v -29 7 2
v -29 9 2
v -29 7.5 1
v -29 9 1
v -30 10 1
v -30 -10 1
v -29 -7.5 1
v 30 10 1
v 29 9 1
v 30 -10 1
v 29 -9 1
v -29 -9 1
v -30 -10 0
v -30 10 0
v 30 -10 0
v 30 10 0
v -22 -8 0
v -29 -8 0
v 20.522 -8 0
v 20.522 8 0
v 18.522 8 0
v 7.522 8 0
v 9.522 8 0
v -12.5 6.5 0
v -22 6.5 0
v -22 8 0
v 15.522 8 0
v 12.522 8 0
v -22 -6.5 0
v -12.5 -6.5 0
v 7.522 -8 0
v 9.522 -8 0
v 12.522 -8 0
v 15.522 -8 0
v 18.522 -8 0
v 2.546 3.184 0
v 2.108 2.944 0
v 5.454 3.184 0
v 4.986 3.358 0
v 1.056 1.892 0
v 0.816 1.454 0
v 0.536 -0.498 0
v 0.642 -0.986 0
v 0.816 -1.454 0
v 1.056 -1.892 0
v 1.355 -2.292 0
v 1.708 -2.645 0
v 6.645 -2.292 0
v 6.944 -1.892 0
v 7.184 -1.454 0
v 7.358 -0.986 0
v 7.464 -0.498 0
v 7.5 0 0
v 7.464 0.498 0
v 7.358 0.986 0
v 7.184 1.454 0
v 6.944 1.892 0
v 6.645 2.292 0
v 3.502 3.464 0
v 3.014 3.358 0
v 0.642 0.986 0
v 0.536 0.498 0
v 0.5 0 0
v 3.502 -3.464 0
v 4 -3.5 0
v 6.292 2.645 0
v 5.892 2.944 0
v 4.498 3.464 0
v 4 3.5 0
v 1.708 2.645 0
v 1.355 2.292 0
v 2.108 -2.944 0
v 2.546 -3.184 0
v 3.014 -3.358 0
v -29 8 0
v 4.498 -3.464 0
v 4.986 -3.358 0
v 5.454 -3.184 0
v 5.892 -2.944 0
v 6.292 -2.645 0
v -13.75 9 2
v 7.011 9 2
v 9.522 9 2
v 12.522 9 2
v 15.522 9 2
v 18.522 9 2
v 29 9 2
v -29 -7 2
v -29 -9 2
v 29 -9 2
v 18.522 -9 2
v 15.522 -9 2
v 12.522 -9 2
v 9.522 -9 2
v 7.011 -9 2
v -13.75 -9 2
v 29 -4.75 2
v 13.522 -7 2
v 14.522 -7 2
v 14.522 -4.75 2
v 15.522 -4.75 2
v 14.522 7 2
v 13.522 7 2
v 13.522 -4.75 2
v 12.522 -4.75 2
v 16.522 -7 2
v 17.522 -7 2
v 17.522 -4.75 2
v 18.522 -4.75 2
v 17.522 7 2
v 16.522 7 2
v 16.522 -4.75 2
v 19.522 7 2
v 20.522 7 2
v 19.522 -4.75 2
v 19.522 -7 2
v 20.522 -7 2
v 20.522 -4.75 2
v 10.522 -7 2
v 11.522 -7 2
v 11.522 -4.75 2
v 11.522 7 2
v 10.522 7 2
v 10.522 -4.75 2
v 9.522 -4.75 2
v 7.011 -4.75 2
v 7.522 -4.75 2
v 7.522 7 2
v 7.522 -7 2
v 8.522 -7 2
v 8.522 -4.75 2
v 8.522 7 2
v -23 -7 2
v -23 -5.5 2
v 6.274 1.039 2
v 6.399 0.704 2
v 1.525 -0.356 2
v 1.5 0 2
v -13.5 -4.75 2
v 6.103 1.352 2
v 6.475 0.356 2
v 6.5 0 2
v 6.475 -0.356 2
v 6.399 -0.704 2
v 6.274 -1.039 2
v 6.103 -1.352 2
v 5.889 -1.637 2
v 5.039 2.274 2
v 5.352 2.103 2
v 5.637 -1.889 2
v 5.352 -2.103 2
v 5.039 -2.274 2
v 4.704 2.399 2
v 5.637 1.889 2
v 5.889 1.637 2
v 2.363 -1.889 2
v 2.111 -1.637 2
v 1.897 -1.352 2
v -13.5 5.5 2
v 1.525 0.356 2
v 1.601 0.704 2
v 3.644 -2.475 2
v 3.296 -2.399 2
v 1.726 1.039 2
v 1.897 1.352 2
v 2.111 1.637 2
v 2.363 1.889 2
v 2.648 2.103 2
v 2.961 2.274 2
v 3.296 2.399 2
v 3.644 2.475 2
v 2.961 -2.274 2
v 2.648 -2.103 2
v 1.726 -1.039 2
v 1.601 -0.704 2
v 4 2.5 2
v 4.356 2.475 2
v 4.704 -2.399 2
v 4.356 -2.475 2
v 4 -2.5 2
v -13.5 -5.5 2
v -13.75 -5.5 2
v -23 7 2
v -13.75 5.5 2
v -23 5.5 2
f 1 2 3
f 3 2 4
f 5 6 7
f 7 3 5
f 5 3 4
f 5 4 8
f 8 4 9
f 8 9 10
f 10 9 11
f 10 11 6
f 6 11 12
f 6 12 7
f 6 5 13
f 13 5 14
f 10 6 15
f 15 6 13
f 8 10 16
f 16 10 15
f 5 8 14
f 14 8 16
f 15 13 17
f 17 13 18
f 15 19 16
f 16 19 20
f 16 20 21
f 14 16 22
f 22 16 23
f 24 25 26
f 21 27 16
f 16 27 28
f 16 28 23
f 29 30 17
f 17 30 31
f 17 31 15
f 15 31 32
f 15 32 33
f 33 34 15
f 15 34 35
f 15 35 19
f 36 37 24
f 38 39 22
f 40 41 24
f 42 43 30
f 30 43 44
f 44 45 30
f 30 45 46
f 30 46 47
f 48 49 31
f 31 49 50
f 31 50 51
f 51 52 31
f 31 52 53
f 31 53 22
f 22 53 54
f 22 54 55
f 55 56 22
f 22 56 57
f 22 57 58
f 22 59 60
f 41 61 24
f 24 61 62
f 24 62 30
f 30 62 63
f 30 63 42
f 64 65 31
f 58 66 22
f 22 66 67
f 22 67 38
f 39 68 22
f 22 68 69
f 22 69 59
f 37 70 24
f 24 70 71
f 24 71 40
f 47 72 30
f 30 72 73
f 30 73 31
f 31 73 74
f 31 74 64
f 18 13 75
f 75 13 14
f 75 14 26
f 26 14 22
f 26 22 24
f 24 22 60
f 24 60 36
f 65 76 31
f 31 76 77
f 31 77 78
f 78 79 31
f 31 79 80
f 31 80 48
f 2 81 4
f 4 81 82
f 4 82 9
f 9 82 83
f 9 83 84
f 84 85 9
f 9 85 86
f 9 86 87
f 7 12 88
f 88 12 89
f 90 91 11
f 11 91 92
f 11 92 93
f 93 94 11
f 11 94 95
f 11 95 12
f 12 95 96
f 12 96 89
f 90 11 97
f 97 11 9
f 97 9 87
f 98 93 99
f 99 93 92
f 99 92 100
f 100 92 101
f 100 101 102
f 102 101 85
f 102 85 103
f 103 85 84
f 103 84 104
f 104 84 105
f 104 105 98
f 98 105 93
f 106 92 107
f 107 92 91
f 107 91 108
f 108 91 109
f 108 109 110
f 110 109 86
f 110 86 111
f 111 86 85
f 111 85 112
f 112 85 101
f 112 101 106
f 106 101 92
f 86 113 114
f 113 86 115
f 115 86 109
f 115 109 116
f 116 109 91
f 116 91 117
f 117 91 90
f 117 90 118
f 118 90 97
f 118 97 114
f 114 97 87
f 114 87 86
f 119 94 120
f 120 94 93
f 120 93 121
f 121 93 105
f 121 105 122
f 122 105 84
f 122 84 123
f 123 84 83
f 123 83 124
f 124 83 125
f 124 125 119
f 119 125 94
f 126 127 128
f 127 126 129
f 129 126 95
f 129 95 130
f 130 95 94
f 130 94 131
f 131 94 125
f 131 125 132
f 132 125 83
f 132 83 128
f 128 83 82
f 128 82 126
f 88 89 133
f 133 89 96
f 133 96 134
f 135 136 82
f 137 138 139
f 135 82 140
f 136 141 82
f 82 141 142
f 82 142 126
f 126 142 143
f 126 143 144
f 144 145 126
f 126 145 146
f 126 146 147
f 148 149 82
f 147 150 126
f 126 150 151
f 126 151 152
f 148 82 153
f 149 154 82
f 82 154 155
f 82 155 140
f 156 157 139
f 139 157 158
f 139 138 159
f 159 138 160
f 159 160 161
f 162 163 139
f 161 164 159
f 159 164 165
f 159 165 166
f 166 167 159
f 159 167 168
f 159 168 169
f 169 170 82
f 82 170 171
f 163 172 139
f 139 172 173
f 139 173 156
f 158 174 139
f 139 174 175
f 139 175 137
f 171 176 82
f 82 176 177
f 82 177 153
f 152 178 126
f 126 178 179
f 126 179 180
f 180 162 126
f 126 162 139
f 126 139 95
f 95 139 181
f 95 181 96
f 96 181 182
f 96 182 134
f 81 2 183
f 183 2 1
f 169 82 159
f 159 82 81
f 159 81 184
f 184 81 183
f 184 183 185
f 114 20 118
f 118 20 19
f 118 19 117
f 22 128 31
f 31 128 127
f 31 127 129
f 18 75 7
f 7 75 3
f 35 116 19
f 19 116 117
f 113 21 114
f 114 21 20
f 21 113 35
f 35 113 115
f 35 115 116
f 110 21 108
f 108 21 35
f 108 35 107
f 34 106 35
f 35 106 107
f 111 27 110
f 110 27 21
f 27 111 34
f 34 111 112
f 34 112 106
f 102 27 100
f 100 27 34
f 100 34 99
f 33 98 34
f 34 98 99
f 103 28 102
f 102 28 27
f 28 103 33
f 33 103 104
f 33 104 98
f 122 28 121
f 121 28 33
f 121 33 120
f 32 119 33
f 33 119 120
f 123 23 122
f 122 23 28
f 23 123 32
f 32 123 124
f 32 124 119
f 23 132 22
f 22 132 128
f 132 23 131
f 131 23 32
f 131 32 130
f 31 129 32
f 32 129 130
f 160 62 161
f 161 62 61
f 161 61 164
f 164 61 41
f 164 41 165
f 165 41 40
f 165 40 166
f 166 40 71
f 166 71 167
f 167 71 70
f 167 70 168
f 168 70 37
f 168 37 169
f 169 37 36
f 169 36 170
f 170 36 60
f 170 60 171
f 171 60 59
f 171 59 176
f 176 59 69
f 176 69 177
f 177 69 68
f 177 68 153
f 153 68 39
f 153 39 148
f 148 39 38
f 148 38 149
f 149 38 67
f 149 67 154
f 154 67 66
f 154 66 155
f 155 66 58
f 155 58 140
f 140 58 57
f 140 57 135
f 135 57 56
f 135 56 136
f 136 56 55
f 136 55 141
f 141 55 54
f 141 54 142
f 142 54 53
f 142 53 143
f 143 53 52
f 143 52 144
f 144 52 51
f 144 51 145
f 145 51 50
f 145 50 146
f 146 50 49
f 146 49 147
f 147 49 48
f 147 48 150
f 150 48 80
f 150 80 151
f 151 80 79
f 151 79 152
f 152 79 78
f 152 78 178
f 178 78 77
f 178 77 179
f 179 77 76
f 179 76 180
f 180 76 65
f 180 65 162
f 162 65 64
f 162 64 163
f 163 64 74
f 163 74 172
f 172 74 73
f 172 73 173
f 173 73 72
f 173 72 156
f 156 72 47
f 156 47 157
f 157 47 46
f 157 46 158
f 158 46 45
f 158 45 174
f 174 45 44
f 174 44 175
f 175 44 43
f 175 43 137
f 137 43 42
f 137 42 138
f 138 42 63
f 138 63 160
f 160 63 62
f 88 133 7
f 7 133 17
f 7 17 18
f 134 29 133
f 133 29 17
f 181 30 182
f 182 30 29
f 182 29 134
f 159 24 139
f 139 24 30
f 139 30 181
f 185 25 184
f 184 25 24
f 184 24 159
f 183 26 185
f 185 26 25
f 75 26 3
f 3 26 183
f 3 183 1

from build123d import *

# Parameters (mm, degrees)
SKETCH1_W           = 60
SKETCH1_H           = 20
BOSS_EXTRUDE1_DEPTH = 1
SKETCH2_W           = 58
SKETCH2_H           = 18
BOSS_EXTRUDE2_DEPTH = 1
SKETCH4_R           = 2.5
SKETCH4_W           = 1
SKETCH4_H           = 14
CUT_EXTRUDE2_DEPTH  = 4
CHAMFER2_START      = 7.522135998
CHAMFER2_2_DEPTH    = 13
CHAMFER2_START_2    = -23
CHAMFER2_3_DEPTH    = 10.5
CHAMFER2_START_3    = -29
CHAMFER2_4_DEPTH    = 7
CHAMFER2_START_4    = -7
CHAMFER2_5_DEPTH    = 14
CHAMFER2_START_5    = -5.5
CHAMFER2_6_DEPTH    = 11
CHAMFER2_START_6    = -9
CHAMFER2_7_DEPTH    = 18
CHAMFER2_8_DEPTH    = 2
CHAMFER2_START_7    = 7
CHAMFER2_9_DEPTH    = 2


with BuildPart() as part:
    # Sketch1 → Boss-Extrude1 (new body)
    with BuildSketch(Plane.XY):
        Rectangle(SKETCH1_W, SKETCH1_H)
    extrude(amount=BOSS_EXTRUDE1_DEPTH)

    # Sketch2 → Boss-Extrude2 (add)
    with BuildSketch(Plane.XY.offset(1)):
        Rectangle(SKETCH2_W, SKETCH2_H)
    extrude(amount=BOSS_EXTRUDE2_DEPTH)

    # Sketch4 → Cut-Extrude2 (cut)
    with BuildSketch(Plane(origin=(0, 0, 0), x_dir=(-1, 0, 0), z_dir=(0, 0, -1))):
        with Locations((-4, 0)):
            Circle(SKETCH4_R)
        Polygon((13.5, -5.5), (23, -5.5), (23, -7), (29, -7), (29, -5.5), (29, 5.5), (29, 7), (23, 7), (23, 5.5), (13.5, 5.5), align=None)
        with Locations((-20.022135998, 0)):
            Rectangle(SKETCH4_W, SKETCH4_H)
        with Locations((-17.022135998, 0)):
            Rectangle(SKETCH4_W, SKETCH4_H)
        with Locations((-14.022135998, 0)):
            Rectangle(SKETCH4_W, SKETCH4_H)
        with Locations((-11.022135998, 0)):
            Rectangle(SKETCH4_W, SKETCH4_H)
        with Locations((-8.022135998, 0)):
            Rectangle(SKETCH4_W, SKETCH4_H)
    extrude(amount=-CUT_EXTRUDE2_DEPTH, mode=Mode.SUBTRACT)

    # Chamfer2: read off the stored shape, not the designer's step
    # Chamfer2 outline → Chamfer2 (revolve, cut)
    with BuildSketch(Plane(origin=(4, 0, 0), x_dir=(1, 0, 0), z_dir=(0, -1, 0))):
        Polygon((3.5, 0), (2.5, 2), (2.5, 0), align=None)
    revolve(axis=Axis((4, 0, 0), (0, 0, 1)), mode=Mode.SUBTRACT)

    # Chamfer2 2 outline → Chamfer2 2 (cut)
    with BuildSketch(Plane.YZ.offset(CHAMFER2_START)):
        Polygon((7, 2), (7, 0), (8, 0), align=None)
        Polygon((5.5, 2), (5.5, 0), (6.5, 0), align=None)
        Polygon((-5.5, 2), (-6.5, 0), (-5.5, 0), align=None)
        Polygon((-7, 2), (-8, 0), (-7, 0), align=None)
    extrude(amount=CHAMFER2_2_DEPTH, mode=Mode.SUBTRACT)

    # Chamfer2 3 outline → Chamfer2 3 (cut)
    with BuildSketch(Plane.YZ.offset(CHAMFER2_START_2)):
        Polygon((5.5, 2), (5.5, 0), (6.5, 0), align=None)
        Polygon((-5.5, 2), (-6.5, 0), (-5.5, 0), align=None)
    extrude(amount=CHAMFER2_3_DEPTH, mode=Mode.SUBTRACT)

    # Chamfer2 4 outline → Chamfer2 4 (cut)
    with BuildSketch(Plane.YZ.offset(CHAMFER2_START_3)):
        Polygon((7, 2), (7, 0), (8, 0), align=None)
        Polygon((-7, 2), (-8, 0), (-7, 0), align=None)
    extrude(amount=CHAMFER2_4_DEPTH, mode=Mode.SUBTRACT)

    # Chamfer2 5 outline → Chamfer2 5 (cut)
    with BuildSketch(Plane(origin=(0, 0, 0), x_dir=(1, 0, 0), z_dir=(0, 1, 0)).offset(CHAMFER2_START_4)):
        Polygon((18.522135998, 0), (19.522135998, -2), (19.522135998, 0), align=None)
        Polygon((17.522135998, -2), (18.522135998, 0), (17.522135998, 0), align=None)
        Polygon((15.522135998, 0), (16.522135998, -2), (16.522135998, 0), align=None)
        Polygon((14.522135998, -2), (15.522135998, 0), (14.522135998, 0), align=None)
        Polygon((12.522135998, 0), (13.522135998, -2), (13.522135998, 0), align=None)
        Polygon((11.522135998, -2), (12.522135998, 0), (11.522135998, 0), align=None)
        Polygon((9.522135998, 0), (10.522135998, -2), (10.522135998, 0), align=None)
        Polygon((8.522135998, -2), (9.522135998, 0), (8.522135998, 0), align=None)
        Polygon((-23, -2), (-22, 0), (-23, 0), align=None)
    extrude(amount=CHAMFER2_5_DEPTH, mode=Mode.SUBTRACT)

    # Chamfer2 6 outline → Chamfer2 6 (cut)
    with BuildSketch(Plane(origin=(0, 0, 0), x_dir=(1, 0, 0), z_dir=(0, 1, 0)).offset(CHAMFER2_START_5)):
        Polygon((-13.5, -2), (-12.5, 0), (-13.5, 0), align=None)
    extrude(amount=CHAMFER2_6_DEPTH, mode=Mode.SUBTRACT)

    # Chamfer2 7 outline → Chamfer2 7 (add)
    with BuildSketch(Plane(origin=(0, 0, 0), x_dir=(1, 0, 0), z_dir=(0, 1, 0)).offset(CHAMFER2_START_6)):
        Polygon((17.522135998, -2), (19.522135998, -2), (18.522135998, 0), align=None)
        Polygon((14.522135998, -2), (16.522135998, -2), (15.522135998, 0), align=None)
        Polygon((11.522135998, -2), (13.522135998, -2), (12.522135998, 0), align=None)
        Polygon((8.522135998, -2), (10.522135998, -2), (9.522135998, 0), align=None)
        Polygon((-13.5, -2), (-12.5, -2), (-12.5, 0), align=None)
    extrude(amount=CHAMFER2_7_DEPTH)

    # Chamfer2 8 outline → Chamfer2 8 (add)
    with BuildSketch(Plane(origin=(0, 0, 0), x_dir=(1, 0, 0), z_dir=(0, 1, 0)).offset(CHAMFER2_START_6)):
        Polygon((-23, -2), (-22, -2), (-22, 0), align=None)
    extrude(amount=CHAMFER2_8_DEPTH)

    # Chamfer2 9 outline → Chamfer2 9 (add)
    with BuildSketch(Plane(origin=(0, 0, 0), x_dir=(1, 0, 0), z_dir=(0, 1, 0)).offset(CHAMFER2_START_7)):
        Polygon((-23, -2), (-22, -2), (-22, 0), align=None)
    extrude(amount=CHAMFER2_9_DEPTH)


solid = part.part
